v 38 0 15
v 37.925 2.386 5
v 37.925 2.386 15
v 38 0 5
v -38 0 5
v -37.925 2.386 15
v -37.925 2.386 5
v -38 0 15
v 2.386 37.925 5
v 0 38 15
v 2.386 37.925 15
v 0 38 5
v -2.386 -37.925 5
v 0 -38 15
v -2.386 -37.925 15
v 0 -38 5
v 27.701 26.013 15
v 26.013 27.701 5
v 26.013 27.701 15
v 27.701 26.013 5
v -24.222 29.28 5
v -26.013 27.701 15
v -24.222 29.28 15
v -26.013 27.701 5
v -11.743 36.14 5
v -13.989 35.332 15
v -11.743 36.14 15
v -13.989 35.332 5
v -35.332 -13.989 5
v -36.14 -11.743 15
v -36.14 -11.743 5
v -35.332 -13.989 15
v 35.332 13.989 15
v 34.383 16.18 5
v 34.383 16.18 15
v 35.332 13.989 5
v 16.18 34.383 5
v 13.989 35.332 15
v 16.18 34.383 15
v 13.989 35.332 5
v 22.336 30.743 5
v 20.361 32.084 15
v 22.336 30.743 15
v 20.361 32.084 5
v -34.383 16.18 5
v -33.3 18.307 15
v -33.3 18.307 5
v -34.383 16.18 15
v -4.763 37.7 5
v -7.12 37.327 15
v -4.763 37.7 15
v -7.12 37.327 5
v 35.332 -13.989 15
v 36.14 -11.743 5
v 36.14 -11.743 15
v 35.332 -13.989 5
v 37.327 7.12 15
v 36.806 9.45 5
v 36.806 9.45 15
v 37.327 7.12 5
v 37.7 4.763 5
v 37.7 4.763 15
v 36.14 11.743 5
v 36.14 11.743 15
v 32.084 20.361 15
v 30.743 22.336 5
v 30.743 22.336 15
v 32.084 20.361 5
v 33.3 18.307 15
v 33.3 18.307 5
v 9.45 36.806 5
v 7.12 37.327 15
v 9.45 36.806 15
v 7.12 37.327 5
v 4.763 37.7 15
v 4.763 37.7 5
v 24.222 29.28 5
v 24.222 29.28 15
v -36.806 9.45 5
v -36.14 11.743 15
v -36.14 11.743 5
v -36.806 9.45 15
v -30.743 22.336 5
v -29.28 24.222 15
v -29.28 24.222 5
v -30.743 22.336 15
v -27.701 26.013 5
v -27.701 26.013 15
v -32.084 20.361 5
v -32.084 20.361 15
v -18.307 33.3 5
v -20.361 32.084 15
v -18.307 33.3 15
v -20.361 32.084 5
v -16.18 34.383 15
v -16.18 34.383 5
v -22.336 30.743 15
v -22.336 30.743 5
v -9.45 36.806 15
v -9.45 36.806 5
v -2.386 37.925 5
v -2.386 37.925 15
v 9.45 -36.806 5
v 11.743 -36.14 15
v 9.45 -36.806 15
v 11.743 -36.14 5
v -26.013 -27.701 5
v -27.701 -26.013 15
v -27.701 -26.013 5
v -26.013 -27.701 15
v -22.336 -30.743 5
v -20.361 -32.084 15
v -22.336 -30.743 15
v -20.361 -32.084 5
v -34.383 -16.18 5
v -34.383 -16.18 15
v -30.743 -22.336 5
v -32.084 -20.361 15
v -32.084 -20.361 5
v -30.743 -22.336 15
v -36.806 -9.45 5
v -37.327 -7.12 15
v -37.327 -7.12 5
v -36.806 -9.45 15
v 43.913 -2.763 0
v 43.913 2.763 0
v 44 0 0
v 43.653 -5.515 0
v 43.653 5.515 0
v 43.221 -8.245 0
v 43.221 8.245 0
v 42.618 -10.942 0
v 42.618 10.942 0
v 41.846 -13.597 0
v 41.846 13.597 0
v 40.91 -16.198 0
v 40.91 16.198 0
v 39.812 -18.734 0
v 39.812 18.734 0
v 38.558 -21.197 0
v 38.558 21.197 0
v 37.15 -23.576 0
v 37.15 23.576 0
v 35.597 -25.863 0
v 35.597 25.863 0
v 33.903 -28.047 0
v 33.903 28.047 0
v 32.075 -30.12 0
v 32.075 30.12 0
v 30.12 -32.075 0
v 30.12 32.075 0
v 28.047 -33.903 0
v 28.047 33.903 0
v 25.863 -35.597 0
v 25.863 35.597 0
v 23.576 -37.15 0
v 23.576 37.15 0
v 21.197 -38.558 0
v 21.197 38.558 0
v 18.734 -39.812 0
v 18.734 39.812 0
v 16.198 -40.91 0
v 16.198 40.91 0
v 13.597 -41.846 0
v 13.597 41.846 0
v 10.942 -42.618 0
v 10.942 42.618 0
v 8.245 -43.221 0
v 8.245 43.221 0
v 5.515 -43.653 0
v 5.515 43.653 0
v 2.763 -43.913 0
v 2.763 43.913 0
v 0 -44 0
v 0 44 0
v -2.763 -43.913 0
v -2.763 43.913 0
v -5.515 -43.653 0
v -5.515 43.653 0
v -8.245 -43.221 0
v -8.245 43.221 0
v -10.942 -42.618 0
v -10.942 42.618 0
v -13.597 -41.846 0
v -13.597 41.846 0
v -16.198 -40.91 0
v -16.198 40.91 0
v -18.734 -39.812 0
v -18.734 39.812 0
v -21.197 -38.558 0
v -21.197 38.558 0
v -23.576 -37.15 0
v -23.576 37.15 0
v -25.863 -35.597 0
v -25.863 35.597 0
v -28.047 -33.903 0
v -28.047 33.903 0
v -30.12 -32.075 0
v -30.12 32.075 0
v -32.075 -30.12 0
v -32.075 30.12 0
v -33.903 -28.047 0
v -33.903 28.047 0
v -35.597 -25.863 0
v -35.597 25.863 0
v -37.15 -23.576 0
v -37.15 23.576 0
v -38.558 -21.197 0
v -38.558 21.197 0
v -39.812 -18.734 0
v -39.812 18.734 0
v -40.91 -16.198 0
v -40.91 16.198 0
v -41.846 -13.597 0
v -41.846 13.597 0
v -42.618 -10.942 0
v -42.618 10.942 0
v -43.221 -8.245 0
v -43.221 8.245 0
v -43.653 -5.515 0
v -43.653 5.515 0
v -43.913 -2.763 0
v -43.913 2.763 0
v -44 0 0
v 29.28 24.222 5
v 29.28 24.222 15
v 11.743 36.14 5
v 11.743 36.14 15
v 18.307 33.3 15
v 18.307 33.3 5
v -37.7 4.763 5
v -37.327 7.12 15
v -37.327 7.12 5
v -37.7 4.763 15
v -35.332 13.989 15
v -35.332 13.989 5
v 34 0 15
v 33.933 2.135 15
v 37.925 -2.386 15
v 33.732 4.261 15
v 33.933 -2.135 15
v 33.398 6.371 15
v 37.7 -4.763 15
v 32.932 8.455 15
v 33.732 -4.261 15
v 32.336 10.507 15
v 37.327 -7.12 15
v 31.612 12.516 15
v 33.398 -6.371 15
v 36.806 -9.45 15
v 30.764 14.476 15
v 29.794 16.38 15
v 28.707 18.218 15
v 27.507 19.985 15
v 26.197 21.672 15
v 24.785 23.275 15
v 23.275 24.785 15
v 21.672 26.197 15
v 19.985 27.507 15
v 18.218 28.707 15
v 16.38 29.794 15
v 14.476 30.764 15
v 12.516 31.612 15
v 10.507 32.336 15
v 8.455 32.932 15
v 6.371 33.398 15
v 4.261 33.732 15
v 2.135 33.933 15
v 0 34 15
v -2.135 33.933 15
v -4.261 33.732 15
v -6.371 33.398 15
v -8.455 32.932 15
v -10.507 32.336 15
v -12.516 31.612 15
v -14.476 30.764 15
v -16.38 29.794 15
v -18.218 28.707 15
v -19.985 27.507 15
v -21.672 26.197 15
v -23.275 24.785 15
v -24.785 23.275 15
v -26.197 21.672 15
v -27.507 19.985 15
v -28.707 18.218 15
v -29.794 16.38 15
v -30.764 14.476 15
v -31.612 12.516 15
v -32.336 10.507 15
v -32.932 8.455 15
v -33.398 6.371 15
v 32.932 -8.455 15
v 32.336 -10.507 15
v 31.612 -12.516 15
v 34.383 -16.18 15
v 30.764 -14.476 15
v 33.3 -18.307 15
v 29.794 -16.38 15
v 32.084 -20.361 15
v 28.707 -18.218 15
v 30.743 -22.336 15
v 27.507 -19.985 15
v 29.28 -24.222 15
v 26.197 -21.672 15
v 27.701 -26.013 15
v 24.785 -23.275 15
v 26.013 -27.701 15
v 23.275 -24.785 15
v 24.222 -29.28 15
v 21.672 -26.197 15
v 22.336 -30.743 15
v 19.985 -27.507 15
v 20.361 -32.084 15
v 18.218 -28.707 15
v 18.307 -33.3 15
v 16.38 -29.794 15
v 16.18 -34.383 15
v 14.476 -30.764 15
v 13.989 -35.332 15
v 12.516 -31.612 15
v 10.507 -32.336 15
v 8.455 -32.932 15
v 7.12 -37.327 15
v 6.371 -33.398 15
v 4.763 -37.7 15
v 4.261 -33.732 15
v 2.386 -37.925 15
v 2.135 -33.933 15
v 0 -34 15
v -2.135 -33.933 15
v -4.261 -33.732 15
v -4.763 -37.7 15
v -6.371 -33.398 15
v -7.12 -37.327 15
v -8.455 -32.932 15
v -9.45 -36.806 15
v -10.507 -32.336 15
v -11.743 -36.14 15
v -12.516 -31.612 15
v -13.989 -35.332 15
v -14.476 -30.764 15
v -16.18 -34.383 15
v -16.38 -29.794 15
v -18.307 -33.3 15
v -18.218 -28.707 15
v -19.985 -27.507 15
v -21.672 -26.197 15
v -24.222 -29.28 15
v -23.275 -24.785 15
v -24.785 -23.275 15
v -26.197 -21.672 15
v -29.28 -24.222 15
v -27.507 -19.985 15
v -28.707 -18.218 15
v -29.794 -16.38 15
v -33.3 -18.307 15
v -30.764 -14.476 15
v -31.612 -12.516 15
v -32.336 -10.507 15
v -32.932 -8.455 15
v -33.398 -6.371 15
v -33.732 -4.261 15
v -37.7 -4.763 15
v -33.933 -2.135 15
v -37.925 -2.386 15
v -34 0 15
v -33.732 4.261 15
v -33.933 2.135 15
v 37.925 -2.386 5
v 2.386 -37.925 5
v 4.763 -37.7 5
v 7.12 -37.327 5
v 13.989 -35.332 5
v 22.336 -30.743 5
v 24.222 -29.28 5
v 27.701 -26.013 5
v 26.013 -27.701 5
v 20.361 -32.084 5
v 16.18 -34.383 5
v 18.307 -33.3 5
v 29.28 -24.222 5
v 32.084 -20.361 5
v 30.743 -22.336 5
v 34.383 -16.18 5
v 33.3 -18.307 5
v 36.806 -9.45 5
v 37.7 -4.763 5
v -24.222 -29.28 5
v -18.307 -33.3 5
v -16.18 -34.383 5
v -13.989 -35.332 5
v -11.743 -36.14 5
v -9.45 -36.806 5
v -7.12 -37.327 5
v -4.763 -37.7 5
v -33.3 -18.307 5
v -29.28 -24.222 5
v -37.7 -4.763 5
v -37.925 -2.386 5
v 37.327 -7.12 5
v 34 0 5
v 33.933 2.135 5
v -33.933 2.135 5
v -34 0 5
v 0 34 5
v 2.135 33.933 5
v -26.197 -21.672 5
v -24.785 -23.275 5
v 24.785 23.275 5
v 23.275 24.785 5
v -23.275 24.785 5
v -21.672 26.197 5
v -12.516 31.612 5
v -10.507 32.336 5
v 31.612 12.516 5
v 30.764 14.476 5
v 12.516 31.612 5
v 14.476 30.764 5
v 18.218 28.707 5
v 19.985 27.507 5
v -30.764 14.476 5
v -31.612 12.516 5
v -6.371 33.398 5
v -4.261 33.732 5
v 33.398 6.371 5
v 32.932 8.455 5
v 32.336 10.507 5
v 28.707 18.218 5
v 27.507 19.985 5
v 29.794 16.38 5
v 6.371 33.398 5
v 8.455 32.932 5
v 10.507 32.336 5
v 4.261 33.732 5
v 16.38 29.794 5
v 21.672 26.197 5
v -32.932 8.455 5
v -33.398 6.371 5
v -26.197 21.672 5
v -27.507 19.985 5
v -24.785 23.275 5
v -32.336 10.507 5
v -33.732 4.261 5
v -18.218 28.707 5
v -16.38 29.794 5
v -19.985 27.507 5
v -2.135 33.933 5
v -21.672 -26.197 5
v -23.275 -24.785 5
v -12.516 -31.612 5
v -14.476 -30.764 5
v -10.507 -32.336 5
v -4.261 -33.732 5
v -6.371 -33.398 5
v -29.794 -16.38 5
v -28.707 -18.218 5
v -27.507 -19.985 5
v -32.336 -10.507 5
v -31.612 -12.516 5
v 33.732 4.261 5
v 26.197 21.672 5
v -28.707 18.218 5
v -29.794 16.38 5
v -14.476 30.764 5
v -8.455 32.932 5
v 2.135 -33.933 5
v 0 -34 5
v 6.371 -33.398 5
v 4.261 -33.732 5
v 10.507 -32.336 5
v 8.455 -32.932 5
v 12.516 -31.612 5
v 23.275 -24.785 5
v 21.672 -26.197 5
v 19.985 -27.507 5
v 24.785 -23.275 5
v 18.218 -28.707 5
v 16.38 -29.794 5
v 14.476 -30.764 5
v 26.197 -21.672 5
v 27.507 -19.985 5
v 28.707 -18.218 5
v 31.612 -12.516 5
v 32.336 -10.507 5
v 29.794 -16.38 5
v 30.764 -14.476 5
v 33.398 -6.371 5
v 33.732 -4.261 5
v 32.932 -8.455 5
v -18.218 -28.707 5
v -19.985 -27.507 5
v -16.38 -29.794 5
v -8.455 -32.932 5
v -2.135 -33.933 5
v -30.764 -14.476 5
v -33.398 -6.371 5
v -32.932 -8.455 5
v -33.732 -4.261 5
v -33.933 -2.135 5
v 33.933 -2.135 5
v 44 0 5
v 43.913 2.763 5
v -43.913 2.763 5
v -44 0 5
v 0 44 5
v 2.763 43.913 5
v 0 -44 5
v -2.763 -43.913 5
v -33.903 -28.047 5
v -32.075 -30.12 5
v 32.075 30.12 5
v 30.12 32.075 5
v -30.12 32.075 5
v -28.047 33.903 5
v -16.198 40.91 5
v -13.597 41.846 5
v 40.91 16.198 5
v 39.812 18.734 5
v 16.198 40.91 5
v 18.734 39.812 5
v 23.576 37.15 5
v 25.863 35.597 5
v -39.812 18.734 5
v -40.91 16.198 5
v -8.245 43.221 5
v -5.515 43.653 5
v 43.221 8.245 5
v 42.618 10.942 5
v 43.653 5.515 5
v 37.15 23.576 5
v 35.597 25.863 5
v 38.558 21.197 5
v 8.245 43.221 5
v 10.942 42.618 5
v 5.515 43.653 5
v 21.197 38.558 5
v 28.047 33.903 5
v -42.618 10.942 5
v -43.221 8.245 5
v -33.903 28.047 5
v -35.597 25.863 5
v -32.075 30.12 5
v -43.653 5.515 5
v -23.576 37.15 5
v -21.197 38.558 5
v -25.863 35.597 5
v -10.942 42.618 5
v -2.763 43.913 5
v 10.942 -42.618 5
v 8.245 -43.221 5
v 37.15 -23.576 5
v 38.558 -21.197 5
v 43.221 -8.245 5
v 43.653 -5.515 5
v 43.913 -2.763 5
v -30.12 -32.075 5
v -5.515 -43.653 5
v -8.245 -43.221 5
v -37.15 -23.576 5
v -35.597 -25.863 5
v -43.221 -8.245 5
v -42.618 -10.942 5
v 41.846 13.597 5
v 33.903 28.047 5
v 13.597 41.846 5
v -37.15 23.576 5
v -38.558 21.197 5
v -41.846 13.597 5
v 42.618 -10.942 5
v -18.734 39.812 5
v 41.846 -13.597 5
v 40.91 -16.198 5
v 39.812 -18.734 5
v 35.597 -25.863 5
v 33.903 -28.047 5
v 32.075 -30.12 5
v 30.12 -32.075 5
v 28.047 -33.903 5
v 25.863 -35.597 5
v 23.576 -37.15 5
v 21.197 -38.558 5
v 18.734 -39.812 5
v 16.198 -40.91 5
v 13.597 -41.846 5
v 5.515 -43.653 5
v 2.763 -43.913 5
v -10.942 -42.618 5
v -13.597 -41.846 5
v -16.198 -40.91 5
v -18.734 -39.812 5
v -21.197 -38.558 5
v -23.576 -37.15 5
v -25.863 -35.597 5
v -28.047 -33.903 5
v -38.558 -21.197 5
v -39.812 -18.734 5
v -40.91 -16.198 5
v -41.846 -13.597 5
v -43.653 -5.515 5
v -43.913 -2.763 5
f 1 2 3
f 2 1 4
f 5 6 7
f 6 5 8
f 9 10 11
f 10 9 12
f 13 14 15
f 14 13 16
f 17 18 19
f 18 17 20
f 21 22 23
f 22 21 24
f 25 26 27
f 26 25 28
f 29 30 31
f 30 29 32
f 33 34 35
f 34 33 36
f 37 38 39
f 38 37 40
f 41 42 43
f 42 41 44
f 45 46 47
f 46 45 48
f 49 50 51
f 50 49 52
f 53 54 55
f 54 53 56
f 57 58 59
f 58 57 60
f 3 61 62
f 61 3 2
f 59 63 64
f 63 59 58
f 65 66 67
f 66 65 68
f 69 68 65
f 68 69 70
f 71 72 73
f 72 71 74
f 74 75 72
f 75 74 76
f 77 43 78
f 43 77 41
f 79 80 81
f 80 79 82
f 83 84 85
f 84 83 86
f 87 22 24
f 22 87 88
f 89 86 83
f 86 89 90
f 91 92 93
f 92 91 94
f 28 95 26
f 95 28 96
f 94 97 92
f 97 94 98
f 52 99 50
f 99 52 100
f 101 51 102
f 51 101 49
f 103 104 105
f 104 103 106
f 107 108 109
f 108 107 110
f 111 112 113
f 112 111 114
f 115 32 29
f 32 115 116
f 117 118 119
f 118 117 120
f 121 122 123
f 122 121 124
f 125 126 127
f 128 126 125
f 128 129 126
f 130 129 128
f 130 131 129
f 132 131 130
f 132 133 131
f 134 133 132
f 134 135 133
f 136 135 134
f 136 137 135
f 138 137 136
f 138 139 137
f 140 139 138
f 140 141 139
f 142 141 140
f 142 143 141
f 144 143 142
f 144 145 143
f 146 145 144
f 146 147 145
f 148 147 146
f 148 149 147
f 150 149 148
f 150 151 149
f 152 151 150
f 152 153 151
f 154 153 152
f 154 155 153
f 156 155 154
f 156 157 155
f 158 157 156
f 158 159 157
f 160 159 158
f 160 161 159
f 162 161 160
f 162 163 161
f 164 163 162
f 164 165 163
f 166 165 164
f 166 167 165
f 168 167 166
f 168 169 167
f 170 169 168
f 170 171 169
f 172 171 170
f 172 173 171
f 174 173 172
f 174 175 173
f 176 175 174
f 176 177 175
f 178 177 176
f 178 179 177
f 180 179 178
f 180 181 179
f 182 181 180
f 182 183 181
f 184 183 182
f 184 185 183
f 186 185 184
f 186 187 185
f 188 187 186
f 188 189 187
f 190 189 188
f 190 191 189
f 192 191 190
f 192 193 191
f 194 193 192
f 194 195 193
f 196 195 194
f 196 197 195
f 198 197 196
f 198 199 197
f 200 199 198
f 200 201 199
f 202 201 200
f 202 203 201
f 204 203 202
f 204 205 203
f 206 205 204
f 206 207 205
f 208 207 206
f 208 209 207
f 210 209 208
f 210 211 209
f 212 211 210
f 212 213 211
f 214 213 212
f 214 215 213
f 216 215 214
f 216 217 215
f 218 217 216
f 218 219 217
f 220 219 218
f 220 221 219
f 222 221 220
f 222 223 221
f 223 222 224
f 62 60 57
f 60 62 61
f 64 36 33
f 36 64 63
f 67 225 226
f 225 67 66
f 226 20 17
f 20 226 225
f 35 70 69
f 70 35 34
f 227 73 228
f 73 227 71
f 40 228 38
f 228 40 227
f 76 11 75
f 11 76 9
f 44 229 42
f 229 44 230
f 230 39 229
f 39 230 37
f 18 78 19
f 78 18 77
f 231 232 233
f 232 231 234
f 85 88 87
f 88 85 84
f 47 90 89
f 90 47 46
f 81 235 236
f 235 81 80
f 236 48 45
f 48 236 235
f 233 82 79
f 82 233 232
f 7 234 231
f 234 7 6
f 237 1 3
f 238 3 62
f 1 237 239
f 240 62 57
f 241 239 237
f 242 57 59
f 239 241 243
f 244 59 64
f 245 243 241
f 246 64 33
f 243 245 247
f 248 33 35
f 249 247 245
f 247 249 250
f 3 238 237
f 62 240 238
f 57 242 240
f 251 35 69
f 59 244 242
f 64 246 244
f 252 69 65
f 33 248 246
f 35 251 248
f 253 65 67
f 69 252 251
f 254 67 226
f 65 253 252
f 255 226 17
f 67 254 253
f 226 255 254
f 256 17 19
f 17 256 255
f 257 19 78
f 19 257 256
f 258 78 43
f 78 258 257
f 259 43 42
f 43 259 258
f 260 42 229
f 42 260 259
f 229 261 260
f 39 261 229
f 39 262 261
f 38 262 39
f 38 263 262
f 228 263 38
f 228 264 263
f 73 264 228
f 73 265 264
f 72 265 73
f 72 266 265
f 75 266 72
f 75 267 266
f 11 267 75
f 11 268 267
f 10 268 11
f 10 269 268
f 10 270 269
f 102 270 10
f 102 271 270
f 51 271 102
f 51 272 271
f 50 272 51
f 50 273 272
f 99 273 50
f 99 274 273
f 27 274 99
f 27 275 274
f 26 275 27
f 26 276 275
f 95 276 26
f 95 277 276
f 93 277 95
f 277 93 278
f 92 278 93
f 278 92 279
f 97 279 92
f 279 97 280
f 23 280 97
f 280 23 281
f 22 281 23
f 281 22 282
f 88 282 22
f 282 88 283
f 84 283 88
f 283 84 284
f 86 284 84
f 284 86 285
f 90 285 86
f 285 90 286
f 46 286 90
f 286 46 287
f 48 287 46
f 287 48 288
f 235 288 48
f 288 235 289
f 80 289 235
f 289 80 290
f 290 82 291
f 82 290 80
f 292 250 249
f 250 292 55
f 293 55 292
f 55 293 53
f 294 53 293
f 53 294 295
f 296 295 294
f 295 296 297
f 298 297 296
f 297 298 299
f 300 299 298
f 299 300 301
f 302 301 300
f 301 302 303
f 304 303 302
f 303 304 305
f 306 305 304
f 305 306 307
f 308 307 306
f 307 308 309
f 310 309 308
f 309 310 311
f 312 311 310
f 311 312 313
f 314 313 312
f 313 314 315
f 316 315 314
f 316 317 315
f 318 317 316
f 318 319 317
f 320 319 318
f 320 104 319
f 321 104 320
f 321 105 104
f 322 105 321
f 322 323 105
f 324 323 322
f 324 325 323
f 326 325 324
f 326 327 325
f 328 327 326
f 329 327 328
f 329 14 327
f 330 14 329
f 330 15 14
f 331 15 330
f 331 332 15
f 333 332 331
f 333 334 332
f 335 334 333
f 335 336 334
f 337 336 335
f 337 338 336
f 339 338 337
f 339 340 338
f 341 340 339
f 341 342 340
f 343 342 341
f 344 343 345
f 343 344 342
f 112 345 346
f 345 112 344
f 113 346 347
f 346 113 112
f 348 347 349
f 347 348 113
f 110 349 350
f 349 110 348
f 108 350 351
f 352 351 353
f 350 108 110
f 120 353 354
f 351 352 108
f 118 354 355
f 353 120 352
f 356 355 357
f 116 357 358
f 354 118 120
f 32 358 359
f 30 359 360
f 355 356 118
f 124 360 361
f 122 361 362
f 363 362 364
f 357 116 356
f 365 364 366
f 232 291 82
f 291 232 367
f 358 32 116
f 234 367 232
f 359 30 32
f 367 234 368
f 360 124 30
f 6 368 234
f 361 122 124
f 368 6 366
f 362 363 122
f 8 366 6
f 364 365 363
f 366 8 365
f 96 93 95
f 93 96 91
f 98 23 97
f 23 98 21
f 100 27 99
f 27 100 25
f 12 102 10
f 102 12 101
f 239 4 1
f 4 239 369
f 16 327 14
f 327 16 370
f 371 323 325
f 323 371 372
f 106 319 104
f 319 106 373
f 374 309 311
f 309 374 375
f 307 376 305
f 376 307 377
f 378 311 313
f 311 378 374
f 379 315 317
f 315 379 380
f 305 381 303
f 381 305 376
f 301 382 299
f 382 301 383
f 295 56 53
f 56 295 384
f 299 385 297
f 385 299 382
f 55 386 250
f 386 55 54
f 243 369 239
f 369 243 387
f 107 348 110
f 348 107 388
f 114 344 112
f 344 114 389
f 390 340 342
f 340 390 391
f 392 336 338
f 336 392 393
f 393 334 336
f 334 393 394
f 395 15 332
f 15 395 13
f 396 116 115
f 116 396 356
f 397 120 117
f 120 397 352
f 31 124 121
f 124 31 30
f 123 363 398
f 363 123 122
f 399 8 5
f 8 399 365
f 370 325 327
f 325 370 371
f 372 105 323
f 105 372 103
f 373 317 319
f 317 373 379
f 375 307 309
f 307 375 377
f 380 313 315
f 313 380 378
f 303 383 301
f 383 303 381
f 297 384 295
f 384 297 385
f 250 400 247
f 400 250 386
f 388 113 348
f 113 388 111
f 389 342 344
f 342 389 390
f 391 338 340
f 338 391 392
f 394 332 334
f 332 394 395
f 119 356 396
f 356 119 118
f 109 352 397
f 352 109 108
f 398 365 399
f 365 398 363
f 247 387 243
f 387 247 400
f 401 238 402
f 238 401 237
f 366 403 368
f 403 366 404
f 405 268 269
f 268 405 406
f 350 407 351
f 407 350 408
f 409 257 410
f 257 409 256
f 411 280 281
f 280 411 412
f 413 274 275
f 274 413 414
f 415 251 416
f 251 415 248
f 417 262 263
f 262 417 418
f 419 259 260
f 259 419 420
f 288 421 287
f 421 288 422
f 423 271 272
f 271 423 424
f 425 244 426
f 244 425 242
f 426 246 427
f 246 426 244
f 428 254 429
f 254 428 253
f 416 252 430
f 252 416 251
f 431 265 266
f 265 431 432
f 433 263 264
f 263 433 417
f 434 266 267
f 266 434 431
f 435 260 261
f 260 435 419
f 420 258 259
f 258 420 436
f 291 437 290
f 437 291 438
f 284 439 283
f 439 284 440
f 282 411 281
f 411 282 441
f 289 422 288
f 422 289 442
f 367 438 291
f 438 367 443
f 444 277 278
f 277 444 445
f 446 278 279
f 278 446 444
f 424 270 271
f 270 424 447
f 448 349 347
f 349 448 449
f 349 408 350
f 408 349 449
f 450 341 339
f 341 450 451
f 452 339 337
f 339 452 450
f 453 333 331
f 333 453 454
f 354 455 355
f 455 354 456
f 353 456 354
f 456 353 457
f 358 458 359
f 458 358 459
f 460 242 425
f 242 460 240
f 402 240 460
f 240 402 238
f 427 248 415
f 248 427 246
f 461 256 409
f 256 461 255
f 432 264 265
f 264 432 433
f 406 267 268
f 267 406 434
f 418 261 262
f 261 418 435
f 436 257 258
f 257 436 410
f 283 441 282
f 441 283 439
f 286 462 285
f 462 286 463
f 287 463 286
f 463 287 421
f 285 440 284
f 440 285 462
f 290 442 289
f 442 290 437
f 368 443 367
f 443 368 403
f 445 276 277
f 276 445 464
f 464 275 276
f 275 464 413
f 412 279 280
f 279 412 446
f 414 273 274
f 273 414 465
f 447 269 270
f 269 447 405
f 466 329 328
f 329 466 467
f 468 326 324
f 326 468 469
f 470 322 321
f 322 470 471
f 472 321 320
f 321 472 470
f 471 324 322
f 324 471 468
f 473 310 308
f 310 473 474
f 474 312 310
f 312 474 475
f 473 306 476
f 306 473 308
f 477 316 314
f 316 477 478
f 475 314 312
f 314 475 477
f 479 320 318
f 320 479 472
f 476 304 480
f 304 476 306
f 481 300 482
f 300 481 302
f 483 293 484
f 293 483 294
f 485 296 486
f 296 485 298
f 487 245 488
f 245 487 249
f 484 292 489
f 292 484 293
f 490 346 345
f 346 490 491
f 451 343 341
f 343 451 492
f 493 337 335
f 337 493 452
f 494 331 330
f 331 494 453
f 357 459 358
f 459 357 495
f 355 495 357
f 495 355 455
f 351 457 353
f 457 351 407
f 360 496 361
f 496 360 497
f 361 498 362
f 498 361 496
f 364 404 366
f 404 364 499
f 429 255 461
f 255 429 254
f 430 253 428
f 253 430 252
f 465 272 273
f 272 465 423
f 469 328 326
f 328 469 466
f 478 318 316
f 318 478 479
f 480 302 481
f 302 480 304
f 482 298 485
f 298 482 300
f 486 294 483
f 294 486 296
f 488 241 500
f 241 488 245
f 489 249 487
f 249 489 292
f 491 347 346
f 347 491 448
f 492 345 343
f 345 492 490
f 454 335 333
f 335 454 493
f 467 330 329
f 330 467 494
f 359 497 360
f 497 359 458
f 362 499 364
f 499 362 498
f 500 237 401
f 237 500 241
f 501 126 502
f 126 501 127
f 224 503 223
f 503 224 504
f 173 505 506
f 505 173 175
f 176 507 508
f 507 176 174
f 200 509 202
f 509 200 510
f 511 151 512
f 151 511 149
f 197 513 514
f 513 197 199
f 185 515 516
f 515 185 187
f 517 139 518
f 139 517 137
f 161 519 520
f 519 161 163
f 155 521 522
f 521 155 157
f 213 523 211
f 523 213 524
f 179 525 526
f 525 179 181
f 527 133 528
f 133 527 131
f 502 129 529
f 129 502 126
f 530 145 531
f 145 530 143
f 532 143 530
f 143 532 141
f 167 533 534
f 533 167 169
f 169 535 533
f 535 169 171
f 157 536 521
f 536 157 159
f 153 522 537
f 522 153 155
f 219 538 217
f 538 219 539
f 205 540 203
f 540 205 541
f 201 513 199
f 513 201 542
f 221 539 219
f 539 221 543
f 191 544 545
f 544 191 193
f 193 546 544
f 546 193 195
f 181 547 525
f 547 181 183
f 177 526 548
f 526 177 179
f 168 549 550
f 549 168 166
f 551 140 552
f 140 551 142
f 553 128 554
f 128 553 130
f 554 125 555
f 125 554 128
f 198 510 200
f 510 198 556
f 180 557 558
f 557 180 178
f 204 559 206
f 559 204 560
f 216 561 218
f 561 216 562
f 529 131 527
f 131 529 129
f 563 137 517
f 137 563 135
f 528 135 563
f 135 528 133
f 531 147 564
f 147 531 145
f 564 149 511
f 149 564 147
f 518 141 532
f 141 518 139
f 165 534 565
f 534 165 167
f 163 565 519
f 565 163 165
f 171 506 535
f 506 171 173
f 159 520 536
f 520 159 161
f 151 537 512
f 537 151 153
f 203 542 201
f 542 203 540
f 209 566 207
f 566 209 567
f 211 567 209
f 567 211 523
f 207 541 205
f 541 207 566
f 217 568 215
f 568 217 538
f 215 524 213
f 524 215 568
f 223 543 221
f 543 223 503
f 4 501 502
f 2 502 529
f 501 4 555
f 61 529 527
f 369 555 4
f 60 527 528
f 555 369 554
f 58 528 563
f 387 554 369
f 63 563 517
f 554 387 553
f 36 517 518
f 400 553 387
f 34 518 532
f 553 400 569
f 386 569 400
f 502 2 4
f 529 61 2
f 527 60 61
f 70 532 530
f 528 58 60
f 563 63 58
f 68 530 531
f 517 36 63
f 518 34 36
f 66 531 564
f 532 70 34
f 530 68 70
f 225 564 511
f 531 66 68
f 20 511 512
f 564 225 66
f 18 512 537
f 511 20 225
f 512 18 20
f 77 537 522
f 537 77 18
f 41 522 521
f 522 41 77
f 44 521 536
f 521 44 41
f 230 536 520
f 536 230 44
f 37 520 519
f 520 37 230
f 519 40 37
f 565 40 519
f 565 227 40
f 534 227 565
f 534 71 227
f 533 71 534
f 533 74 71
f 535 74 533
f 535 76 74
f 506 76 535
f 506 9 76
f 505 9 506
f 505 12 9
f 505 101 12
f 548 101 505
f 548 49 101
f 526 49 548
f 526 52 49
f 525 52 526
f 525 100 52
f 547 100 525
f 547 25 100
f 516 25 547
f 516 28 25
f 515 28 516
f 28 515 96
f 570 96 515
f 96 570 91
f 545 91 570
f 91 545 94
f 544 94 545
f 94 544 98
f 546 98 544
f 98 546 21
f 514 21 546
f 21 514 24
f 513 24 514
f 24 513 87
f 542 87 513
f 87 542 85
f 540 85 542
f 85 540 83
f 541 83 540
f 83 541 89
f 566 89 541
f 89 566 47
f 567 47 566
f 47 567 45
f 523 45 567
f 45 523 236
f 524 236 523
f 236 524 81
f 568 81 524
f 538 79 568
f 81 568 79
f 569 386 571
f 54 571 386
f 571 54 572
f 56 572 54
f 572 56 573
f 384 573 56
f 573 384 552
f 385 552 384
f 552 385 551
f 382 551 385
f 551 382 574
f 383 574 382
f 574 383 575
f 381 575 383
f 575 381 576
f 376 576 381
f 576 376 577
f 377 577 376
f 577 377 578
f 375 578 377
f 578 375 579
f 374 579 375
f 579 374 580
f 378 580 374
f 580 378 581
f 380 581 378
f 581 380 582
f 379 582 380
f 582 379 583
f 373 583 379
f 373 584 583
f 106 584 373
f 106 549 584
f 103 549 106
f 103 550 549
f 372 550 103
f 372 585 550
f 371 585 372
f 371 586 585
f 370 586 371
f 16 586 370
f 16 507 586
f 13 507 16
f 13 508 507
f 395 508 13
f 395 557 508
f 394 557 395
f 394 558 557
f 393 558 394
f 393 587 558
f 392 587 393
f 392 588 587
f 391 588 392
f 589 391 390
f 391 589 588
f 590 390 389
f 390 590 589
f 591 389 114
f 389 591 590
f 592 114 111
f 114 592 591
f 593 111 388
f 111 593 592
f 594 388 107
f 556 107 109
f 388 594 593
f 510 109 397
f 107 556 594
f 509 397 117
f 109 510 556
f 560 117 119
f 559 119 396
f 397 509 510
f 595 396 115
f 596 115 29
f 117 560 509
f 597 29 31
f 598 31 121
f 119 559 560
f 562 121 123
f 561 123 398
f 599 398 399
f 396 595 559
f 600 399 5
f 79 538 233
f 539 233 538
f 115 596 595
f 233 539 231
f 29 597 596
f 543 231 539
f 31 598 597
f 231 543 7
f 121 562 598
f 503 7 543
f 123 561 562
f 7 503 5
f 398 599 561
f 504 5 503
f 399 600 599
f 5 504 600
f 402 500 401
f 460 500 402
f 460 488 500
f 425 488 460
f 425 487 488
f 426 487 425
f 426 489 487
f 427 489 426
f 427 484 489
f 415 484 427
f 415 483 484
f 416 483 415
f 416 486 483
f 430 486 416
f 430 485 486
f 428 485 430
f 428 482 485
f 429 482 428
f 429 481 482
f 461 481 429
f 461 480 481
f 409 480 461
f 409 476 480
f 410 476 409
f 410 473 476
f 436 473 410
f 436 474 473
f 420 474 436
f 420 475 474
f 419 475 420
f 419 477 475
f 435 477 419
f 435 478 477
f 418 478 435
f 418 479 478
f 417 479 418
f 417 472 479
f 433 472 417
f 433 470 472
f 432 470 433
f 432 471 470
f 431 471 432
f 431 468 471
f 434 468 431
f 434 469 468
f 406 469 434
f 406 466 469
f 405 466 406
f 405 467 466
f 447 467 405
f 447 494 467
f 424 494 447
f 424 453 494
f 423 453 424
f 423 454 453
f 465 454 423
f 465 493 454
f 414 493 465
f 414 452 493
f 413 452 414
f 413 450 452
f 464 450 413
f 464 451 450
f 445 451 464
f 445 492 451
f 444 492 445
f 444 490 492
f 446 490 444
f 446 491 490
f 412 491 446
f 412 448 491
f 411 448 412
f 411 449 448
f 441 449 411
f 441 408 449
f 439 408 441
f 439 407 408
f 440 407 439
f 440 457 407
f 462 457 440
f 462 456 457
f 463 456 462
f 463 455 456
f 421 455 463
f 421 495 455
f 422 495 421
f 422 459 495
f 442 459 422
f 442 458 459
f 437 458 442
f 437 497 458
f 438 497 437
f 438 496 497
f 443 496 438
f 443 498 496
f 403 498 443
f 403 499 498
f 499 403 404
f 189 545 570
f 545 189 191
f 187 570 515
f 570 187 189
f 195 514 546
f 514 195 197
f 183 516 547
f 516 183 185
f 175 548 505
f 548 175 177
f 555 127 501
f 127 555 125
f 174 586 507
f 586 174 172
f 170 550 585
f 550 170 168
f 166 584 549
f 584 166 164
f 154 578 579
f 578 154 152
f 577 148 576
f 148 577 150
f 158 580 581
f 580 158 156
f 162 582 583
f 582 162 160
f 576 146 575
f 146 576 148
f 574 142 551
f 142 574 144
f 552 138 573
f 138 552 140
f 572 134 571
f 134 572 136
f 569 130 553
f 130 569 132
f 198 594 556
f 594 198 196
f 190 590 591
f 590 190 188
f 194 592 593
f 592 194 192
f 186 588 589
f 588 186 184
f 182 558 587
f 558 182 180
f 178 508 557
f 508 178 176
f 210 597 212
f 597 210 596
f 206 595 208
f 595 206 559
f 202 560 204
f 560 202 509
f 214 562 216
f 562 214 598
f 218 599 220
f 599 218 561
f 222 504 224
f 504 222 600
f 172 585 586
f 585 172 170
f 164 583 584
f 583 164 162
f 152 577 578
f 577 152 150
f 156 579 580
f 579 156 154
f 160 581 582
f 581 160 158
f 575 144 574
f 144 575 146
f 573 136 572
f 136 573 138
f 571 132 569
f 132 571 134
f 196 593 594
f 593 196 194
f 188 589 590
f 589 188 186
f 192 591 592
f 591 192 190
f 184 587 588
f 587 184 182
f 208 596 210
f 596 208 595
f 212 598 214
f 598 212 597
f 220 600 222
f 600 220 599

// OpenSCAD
union() {
    difference(){
        cylinder(h=15, r=38, $fn=100);
        cylinder(h=16, r=34, $fn=100);
    }
        cylinder(h=5, r=44, $fn=100);
 }
